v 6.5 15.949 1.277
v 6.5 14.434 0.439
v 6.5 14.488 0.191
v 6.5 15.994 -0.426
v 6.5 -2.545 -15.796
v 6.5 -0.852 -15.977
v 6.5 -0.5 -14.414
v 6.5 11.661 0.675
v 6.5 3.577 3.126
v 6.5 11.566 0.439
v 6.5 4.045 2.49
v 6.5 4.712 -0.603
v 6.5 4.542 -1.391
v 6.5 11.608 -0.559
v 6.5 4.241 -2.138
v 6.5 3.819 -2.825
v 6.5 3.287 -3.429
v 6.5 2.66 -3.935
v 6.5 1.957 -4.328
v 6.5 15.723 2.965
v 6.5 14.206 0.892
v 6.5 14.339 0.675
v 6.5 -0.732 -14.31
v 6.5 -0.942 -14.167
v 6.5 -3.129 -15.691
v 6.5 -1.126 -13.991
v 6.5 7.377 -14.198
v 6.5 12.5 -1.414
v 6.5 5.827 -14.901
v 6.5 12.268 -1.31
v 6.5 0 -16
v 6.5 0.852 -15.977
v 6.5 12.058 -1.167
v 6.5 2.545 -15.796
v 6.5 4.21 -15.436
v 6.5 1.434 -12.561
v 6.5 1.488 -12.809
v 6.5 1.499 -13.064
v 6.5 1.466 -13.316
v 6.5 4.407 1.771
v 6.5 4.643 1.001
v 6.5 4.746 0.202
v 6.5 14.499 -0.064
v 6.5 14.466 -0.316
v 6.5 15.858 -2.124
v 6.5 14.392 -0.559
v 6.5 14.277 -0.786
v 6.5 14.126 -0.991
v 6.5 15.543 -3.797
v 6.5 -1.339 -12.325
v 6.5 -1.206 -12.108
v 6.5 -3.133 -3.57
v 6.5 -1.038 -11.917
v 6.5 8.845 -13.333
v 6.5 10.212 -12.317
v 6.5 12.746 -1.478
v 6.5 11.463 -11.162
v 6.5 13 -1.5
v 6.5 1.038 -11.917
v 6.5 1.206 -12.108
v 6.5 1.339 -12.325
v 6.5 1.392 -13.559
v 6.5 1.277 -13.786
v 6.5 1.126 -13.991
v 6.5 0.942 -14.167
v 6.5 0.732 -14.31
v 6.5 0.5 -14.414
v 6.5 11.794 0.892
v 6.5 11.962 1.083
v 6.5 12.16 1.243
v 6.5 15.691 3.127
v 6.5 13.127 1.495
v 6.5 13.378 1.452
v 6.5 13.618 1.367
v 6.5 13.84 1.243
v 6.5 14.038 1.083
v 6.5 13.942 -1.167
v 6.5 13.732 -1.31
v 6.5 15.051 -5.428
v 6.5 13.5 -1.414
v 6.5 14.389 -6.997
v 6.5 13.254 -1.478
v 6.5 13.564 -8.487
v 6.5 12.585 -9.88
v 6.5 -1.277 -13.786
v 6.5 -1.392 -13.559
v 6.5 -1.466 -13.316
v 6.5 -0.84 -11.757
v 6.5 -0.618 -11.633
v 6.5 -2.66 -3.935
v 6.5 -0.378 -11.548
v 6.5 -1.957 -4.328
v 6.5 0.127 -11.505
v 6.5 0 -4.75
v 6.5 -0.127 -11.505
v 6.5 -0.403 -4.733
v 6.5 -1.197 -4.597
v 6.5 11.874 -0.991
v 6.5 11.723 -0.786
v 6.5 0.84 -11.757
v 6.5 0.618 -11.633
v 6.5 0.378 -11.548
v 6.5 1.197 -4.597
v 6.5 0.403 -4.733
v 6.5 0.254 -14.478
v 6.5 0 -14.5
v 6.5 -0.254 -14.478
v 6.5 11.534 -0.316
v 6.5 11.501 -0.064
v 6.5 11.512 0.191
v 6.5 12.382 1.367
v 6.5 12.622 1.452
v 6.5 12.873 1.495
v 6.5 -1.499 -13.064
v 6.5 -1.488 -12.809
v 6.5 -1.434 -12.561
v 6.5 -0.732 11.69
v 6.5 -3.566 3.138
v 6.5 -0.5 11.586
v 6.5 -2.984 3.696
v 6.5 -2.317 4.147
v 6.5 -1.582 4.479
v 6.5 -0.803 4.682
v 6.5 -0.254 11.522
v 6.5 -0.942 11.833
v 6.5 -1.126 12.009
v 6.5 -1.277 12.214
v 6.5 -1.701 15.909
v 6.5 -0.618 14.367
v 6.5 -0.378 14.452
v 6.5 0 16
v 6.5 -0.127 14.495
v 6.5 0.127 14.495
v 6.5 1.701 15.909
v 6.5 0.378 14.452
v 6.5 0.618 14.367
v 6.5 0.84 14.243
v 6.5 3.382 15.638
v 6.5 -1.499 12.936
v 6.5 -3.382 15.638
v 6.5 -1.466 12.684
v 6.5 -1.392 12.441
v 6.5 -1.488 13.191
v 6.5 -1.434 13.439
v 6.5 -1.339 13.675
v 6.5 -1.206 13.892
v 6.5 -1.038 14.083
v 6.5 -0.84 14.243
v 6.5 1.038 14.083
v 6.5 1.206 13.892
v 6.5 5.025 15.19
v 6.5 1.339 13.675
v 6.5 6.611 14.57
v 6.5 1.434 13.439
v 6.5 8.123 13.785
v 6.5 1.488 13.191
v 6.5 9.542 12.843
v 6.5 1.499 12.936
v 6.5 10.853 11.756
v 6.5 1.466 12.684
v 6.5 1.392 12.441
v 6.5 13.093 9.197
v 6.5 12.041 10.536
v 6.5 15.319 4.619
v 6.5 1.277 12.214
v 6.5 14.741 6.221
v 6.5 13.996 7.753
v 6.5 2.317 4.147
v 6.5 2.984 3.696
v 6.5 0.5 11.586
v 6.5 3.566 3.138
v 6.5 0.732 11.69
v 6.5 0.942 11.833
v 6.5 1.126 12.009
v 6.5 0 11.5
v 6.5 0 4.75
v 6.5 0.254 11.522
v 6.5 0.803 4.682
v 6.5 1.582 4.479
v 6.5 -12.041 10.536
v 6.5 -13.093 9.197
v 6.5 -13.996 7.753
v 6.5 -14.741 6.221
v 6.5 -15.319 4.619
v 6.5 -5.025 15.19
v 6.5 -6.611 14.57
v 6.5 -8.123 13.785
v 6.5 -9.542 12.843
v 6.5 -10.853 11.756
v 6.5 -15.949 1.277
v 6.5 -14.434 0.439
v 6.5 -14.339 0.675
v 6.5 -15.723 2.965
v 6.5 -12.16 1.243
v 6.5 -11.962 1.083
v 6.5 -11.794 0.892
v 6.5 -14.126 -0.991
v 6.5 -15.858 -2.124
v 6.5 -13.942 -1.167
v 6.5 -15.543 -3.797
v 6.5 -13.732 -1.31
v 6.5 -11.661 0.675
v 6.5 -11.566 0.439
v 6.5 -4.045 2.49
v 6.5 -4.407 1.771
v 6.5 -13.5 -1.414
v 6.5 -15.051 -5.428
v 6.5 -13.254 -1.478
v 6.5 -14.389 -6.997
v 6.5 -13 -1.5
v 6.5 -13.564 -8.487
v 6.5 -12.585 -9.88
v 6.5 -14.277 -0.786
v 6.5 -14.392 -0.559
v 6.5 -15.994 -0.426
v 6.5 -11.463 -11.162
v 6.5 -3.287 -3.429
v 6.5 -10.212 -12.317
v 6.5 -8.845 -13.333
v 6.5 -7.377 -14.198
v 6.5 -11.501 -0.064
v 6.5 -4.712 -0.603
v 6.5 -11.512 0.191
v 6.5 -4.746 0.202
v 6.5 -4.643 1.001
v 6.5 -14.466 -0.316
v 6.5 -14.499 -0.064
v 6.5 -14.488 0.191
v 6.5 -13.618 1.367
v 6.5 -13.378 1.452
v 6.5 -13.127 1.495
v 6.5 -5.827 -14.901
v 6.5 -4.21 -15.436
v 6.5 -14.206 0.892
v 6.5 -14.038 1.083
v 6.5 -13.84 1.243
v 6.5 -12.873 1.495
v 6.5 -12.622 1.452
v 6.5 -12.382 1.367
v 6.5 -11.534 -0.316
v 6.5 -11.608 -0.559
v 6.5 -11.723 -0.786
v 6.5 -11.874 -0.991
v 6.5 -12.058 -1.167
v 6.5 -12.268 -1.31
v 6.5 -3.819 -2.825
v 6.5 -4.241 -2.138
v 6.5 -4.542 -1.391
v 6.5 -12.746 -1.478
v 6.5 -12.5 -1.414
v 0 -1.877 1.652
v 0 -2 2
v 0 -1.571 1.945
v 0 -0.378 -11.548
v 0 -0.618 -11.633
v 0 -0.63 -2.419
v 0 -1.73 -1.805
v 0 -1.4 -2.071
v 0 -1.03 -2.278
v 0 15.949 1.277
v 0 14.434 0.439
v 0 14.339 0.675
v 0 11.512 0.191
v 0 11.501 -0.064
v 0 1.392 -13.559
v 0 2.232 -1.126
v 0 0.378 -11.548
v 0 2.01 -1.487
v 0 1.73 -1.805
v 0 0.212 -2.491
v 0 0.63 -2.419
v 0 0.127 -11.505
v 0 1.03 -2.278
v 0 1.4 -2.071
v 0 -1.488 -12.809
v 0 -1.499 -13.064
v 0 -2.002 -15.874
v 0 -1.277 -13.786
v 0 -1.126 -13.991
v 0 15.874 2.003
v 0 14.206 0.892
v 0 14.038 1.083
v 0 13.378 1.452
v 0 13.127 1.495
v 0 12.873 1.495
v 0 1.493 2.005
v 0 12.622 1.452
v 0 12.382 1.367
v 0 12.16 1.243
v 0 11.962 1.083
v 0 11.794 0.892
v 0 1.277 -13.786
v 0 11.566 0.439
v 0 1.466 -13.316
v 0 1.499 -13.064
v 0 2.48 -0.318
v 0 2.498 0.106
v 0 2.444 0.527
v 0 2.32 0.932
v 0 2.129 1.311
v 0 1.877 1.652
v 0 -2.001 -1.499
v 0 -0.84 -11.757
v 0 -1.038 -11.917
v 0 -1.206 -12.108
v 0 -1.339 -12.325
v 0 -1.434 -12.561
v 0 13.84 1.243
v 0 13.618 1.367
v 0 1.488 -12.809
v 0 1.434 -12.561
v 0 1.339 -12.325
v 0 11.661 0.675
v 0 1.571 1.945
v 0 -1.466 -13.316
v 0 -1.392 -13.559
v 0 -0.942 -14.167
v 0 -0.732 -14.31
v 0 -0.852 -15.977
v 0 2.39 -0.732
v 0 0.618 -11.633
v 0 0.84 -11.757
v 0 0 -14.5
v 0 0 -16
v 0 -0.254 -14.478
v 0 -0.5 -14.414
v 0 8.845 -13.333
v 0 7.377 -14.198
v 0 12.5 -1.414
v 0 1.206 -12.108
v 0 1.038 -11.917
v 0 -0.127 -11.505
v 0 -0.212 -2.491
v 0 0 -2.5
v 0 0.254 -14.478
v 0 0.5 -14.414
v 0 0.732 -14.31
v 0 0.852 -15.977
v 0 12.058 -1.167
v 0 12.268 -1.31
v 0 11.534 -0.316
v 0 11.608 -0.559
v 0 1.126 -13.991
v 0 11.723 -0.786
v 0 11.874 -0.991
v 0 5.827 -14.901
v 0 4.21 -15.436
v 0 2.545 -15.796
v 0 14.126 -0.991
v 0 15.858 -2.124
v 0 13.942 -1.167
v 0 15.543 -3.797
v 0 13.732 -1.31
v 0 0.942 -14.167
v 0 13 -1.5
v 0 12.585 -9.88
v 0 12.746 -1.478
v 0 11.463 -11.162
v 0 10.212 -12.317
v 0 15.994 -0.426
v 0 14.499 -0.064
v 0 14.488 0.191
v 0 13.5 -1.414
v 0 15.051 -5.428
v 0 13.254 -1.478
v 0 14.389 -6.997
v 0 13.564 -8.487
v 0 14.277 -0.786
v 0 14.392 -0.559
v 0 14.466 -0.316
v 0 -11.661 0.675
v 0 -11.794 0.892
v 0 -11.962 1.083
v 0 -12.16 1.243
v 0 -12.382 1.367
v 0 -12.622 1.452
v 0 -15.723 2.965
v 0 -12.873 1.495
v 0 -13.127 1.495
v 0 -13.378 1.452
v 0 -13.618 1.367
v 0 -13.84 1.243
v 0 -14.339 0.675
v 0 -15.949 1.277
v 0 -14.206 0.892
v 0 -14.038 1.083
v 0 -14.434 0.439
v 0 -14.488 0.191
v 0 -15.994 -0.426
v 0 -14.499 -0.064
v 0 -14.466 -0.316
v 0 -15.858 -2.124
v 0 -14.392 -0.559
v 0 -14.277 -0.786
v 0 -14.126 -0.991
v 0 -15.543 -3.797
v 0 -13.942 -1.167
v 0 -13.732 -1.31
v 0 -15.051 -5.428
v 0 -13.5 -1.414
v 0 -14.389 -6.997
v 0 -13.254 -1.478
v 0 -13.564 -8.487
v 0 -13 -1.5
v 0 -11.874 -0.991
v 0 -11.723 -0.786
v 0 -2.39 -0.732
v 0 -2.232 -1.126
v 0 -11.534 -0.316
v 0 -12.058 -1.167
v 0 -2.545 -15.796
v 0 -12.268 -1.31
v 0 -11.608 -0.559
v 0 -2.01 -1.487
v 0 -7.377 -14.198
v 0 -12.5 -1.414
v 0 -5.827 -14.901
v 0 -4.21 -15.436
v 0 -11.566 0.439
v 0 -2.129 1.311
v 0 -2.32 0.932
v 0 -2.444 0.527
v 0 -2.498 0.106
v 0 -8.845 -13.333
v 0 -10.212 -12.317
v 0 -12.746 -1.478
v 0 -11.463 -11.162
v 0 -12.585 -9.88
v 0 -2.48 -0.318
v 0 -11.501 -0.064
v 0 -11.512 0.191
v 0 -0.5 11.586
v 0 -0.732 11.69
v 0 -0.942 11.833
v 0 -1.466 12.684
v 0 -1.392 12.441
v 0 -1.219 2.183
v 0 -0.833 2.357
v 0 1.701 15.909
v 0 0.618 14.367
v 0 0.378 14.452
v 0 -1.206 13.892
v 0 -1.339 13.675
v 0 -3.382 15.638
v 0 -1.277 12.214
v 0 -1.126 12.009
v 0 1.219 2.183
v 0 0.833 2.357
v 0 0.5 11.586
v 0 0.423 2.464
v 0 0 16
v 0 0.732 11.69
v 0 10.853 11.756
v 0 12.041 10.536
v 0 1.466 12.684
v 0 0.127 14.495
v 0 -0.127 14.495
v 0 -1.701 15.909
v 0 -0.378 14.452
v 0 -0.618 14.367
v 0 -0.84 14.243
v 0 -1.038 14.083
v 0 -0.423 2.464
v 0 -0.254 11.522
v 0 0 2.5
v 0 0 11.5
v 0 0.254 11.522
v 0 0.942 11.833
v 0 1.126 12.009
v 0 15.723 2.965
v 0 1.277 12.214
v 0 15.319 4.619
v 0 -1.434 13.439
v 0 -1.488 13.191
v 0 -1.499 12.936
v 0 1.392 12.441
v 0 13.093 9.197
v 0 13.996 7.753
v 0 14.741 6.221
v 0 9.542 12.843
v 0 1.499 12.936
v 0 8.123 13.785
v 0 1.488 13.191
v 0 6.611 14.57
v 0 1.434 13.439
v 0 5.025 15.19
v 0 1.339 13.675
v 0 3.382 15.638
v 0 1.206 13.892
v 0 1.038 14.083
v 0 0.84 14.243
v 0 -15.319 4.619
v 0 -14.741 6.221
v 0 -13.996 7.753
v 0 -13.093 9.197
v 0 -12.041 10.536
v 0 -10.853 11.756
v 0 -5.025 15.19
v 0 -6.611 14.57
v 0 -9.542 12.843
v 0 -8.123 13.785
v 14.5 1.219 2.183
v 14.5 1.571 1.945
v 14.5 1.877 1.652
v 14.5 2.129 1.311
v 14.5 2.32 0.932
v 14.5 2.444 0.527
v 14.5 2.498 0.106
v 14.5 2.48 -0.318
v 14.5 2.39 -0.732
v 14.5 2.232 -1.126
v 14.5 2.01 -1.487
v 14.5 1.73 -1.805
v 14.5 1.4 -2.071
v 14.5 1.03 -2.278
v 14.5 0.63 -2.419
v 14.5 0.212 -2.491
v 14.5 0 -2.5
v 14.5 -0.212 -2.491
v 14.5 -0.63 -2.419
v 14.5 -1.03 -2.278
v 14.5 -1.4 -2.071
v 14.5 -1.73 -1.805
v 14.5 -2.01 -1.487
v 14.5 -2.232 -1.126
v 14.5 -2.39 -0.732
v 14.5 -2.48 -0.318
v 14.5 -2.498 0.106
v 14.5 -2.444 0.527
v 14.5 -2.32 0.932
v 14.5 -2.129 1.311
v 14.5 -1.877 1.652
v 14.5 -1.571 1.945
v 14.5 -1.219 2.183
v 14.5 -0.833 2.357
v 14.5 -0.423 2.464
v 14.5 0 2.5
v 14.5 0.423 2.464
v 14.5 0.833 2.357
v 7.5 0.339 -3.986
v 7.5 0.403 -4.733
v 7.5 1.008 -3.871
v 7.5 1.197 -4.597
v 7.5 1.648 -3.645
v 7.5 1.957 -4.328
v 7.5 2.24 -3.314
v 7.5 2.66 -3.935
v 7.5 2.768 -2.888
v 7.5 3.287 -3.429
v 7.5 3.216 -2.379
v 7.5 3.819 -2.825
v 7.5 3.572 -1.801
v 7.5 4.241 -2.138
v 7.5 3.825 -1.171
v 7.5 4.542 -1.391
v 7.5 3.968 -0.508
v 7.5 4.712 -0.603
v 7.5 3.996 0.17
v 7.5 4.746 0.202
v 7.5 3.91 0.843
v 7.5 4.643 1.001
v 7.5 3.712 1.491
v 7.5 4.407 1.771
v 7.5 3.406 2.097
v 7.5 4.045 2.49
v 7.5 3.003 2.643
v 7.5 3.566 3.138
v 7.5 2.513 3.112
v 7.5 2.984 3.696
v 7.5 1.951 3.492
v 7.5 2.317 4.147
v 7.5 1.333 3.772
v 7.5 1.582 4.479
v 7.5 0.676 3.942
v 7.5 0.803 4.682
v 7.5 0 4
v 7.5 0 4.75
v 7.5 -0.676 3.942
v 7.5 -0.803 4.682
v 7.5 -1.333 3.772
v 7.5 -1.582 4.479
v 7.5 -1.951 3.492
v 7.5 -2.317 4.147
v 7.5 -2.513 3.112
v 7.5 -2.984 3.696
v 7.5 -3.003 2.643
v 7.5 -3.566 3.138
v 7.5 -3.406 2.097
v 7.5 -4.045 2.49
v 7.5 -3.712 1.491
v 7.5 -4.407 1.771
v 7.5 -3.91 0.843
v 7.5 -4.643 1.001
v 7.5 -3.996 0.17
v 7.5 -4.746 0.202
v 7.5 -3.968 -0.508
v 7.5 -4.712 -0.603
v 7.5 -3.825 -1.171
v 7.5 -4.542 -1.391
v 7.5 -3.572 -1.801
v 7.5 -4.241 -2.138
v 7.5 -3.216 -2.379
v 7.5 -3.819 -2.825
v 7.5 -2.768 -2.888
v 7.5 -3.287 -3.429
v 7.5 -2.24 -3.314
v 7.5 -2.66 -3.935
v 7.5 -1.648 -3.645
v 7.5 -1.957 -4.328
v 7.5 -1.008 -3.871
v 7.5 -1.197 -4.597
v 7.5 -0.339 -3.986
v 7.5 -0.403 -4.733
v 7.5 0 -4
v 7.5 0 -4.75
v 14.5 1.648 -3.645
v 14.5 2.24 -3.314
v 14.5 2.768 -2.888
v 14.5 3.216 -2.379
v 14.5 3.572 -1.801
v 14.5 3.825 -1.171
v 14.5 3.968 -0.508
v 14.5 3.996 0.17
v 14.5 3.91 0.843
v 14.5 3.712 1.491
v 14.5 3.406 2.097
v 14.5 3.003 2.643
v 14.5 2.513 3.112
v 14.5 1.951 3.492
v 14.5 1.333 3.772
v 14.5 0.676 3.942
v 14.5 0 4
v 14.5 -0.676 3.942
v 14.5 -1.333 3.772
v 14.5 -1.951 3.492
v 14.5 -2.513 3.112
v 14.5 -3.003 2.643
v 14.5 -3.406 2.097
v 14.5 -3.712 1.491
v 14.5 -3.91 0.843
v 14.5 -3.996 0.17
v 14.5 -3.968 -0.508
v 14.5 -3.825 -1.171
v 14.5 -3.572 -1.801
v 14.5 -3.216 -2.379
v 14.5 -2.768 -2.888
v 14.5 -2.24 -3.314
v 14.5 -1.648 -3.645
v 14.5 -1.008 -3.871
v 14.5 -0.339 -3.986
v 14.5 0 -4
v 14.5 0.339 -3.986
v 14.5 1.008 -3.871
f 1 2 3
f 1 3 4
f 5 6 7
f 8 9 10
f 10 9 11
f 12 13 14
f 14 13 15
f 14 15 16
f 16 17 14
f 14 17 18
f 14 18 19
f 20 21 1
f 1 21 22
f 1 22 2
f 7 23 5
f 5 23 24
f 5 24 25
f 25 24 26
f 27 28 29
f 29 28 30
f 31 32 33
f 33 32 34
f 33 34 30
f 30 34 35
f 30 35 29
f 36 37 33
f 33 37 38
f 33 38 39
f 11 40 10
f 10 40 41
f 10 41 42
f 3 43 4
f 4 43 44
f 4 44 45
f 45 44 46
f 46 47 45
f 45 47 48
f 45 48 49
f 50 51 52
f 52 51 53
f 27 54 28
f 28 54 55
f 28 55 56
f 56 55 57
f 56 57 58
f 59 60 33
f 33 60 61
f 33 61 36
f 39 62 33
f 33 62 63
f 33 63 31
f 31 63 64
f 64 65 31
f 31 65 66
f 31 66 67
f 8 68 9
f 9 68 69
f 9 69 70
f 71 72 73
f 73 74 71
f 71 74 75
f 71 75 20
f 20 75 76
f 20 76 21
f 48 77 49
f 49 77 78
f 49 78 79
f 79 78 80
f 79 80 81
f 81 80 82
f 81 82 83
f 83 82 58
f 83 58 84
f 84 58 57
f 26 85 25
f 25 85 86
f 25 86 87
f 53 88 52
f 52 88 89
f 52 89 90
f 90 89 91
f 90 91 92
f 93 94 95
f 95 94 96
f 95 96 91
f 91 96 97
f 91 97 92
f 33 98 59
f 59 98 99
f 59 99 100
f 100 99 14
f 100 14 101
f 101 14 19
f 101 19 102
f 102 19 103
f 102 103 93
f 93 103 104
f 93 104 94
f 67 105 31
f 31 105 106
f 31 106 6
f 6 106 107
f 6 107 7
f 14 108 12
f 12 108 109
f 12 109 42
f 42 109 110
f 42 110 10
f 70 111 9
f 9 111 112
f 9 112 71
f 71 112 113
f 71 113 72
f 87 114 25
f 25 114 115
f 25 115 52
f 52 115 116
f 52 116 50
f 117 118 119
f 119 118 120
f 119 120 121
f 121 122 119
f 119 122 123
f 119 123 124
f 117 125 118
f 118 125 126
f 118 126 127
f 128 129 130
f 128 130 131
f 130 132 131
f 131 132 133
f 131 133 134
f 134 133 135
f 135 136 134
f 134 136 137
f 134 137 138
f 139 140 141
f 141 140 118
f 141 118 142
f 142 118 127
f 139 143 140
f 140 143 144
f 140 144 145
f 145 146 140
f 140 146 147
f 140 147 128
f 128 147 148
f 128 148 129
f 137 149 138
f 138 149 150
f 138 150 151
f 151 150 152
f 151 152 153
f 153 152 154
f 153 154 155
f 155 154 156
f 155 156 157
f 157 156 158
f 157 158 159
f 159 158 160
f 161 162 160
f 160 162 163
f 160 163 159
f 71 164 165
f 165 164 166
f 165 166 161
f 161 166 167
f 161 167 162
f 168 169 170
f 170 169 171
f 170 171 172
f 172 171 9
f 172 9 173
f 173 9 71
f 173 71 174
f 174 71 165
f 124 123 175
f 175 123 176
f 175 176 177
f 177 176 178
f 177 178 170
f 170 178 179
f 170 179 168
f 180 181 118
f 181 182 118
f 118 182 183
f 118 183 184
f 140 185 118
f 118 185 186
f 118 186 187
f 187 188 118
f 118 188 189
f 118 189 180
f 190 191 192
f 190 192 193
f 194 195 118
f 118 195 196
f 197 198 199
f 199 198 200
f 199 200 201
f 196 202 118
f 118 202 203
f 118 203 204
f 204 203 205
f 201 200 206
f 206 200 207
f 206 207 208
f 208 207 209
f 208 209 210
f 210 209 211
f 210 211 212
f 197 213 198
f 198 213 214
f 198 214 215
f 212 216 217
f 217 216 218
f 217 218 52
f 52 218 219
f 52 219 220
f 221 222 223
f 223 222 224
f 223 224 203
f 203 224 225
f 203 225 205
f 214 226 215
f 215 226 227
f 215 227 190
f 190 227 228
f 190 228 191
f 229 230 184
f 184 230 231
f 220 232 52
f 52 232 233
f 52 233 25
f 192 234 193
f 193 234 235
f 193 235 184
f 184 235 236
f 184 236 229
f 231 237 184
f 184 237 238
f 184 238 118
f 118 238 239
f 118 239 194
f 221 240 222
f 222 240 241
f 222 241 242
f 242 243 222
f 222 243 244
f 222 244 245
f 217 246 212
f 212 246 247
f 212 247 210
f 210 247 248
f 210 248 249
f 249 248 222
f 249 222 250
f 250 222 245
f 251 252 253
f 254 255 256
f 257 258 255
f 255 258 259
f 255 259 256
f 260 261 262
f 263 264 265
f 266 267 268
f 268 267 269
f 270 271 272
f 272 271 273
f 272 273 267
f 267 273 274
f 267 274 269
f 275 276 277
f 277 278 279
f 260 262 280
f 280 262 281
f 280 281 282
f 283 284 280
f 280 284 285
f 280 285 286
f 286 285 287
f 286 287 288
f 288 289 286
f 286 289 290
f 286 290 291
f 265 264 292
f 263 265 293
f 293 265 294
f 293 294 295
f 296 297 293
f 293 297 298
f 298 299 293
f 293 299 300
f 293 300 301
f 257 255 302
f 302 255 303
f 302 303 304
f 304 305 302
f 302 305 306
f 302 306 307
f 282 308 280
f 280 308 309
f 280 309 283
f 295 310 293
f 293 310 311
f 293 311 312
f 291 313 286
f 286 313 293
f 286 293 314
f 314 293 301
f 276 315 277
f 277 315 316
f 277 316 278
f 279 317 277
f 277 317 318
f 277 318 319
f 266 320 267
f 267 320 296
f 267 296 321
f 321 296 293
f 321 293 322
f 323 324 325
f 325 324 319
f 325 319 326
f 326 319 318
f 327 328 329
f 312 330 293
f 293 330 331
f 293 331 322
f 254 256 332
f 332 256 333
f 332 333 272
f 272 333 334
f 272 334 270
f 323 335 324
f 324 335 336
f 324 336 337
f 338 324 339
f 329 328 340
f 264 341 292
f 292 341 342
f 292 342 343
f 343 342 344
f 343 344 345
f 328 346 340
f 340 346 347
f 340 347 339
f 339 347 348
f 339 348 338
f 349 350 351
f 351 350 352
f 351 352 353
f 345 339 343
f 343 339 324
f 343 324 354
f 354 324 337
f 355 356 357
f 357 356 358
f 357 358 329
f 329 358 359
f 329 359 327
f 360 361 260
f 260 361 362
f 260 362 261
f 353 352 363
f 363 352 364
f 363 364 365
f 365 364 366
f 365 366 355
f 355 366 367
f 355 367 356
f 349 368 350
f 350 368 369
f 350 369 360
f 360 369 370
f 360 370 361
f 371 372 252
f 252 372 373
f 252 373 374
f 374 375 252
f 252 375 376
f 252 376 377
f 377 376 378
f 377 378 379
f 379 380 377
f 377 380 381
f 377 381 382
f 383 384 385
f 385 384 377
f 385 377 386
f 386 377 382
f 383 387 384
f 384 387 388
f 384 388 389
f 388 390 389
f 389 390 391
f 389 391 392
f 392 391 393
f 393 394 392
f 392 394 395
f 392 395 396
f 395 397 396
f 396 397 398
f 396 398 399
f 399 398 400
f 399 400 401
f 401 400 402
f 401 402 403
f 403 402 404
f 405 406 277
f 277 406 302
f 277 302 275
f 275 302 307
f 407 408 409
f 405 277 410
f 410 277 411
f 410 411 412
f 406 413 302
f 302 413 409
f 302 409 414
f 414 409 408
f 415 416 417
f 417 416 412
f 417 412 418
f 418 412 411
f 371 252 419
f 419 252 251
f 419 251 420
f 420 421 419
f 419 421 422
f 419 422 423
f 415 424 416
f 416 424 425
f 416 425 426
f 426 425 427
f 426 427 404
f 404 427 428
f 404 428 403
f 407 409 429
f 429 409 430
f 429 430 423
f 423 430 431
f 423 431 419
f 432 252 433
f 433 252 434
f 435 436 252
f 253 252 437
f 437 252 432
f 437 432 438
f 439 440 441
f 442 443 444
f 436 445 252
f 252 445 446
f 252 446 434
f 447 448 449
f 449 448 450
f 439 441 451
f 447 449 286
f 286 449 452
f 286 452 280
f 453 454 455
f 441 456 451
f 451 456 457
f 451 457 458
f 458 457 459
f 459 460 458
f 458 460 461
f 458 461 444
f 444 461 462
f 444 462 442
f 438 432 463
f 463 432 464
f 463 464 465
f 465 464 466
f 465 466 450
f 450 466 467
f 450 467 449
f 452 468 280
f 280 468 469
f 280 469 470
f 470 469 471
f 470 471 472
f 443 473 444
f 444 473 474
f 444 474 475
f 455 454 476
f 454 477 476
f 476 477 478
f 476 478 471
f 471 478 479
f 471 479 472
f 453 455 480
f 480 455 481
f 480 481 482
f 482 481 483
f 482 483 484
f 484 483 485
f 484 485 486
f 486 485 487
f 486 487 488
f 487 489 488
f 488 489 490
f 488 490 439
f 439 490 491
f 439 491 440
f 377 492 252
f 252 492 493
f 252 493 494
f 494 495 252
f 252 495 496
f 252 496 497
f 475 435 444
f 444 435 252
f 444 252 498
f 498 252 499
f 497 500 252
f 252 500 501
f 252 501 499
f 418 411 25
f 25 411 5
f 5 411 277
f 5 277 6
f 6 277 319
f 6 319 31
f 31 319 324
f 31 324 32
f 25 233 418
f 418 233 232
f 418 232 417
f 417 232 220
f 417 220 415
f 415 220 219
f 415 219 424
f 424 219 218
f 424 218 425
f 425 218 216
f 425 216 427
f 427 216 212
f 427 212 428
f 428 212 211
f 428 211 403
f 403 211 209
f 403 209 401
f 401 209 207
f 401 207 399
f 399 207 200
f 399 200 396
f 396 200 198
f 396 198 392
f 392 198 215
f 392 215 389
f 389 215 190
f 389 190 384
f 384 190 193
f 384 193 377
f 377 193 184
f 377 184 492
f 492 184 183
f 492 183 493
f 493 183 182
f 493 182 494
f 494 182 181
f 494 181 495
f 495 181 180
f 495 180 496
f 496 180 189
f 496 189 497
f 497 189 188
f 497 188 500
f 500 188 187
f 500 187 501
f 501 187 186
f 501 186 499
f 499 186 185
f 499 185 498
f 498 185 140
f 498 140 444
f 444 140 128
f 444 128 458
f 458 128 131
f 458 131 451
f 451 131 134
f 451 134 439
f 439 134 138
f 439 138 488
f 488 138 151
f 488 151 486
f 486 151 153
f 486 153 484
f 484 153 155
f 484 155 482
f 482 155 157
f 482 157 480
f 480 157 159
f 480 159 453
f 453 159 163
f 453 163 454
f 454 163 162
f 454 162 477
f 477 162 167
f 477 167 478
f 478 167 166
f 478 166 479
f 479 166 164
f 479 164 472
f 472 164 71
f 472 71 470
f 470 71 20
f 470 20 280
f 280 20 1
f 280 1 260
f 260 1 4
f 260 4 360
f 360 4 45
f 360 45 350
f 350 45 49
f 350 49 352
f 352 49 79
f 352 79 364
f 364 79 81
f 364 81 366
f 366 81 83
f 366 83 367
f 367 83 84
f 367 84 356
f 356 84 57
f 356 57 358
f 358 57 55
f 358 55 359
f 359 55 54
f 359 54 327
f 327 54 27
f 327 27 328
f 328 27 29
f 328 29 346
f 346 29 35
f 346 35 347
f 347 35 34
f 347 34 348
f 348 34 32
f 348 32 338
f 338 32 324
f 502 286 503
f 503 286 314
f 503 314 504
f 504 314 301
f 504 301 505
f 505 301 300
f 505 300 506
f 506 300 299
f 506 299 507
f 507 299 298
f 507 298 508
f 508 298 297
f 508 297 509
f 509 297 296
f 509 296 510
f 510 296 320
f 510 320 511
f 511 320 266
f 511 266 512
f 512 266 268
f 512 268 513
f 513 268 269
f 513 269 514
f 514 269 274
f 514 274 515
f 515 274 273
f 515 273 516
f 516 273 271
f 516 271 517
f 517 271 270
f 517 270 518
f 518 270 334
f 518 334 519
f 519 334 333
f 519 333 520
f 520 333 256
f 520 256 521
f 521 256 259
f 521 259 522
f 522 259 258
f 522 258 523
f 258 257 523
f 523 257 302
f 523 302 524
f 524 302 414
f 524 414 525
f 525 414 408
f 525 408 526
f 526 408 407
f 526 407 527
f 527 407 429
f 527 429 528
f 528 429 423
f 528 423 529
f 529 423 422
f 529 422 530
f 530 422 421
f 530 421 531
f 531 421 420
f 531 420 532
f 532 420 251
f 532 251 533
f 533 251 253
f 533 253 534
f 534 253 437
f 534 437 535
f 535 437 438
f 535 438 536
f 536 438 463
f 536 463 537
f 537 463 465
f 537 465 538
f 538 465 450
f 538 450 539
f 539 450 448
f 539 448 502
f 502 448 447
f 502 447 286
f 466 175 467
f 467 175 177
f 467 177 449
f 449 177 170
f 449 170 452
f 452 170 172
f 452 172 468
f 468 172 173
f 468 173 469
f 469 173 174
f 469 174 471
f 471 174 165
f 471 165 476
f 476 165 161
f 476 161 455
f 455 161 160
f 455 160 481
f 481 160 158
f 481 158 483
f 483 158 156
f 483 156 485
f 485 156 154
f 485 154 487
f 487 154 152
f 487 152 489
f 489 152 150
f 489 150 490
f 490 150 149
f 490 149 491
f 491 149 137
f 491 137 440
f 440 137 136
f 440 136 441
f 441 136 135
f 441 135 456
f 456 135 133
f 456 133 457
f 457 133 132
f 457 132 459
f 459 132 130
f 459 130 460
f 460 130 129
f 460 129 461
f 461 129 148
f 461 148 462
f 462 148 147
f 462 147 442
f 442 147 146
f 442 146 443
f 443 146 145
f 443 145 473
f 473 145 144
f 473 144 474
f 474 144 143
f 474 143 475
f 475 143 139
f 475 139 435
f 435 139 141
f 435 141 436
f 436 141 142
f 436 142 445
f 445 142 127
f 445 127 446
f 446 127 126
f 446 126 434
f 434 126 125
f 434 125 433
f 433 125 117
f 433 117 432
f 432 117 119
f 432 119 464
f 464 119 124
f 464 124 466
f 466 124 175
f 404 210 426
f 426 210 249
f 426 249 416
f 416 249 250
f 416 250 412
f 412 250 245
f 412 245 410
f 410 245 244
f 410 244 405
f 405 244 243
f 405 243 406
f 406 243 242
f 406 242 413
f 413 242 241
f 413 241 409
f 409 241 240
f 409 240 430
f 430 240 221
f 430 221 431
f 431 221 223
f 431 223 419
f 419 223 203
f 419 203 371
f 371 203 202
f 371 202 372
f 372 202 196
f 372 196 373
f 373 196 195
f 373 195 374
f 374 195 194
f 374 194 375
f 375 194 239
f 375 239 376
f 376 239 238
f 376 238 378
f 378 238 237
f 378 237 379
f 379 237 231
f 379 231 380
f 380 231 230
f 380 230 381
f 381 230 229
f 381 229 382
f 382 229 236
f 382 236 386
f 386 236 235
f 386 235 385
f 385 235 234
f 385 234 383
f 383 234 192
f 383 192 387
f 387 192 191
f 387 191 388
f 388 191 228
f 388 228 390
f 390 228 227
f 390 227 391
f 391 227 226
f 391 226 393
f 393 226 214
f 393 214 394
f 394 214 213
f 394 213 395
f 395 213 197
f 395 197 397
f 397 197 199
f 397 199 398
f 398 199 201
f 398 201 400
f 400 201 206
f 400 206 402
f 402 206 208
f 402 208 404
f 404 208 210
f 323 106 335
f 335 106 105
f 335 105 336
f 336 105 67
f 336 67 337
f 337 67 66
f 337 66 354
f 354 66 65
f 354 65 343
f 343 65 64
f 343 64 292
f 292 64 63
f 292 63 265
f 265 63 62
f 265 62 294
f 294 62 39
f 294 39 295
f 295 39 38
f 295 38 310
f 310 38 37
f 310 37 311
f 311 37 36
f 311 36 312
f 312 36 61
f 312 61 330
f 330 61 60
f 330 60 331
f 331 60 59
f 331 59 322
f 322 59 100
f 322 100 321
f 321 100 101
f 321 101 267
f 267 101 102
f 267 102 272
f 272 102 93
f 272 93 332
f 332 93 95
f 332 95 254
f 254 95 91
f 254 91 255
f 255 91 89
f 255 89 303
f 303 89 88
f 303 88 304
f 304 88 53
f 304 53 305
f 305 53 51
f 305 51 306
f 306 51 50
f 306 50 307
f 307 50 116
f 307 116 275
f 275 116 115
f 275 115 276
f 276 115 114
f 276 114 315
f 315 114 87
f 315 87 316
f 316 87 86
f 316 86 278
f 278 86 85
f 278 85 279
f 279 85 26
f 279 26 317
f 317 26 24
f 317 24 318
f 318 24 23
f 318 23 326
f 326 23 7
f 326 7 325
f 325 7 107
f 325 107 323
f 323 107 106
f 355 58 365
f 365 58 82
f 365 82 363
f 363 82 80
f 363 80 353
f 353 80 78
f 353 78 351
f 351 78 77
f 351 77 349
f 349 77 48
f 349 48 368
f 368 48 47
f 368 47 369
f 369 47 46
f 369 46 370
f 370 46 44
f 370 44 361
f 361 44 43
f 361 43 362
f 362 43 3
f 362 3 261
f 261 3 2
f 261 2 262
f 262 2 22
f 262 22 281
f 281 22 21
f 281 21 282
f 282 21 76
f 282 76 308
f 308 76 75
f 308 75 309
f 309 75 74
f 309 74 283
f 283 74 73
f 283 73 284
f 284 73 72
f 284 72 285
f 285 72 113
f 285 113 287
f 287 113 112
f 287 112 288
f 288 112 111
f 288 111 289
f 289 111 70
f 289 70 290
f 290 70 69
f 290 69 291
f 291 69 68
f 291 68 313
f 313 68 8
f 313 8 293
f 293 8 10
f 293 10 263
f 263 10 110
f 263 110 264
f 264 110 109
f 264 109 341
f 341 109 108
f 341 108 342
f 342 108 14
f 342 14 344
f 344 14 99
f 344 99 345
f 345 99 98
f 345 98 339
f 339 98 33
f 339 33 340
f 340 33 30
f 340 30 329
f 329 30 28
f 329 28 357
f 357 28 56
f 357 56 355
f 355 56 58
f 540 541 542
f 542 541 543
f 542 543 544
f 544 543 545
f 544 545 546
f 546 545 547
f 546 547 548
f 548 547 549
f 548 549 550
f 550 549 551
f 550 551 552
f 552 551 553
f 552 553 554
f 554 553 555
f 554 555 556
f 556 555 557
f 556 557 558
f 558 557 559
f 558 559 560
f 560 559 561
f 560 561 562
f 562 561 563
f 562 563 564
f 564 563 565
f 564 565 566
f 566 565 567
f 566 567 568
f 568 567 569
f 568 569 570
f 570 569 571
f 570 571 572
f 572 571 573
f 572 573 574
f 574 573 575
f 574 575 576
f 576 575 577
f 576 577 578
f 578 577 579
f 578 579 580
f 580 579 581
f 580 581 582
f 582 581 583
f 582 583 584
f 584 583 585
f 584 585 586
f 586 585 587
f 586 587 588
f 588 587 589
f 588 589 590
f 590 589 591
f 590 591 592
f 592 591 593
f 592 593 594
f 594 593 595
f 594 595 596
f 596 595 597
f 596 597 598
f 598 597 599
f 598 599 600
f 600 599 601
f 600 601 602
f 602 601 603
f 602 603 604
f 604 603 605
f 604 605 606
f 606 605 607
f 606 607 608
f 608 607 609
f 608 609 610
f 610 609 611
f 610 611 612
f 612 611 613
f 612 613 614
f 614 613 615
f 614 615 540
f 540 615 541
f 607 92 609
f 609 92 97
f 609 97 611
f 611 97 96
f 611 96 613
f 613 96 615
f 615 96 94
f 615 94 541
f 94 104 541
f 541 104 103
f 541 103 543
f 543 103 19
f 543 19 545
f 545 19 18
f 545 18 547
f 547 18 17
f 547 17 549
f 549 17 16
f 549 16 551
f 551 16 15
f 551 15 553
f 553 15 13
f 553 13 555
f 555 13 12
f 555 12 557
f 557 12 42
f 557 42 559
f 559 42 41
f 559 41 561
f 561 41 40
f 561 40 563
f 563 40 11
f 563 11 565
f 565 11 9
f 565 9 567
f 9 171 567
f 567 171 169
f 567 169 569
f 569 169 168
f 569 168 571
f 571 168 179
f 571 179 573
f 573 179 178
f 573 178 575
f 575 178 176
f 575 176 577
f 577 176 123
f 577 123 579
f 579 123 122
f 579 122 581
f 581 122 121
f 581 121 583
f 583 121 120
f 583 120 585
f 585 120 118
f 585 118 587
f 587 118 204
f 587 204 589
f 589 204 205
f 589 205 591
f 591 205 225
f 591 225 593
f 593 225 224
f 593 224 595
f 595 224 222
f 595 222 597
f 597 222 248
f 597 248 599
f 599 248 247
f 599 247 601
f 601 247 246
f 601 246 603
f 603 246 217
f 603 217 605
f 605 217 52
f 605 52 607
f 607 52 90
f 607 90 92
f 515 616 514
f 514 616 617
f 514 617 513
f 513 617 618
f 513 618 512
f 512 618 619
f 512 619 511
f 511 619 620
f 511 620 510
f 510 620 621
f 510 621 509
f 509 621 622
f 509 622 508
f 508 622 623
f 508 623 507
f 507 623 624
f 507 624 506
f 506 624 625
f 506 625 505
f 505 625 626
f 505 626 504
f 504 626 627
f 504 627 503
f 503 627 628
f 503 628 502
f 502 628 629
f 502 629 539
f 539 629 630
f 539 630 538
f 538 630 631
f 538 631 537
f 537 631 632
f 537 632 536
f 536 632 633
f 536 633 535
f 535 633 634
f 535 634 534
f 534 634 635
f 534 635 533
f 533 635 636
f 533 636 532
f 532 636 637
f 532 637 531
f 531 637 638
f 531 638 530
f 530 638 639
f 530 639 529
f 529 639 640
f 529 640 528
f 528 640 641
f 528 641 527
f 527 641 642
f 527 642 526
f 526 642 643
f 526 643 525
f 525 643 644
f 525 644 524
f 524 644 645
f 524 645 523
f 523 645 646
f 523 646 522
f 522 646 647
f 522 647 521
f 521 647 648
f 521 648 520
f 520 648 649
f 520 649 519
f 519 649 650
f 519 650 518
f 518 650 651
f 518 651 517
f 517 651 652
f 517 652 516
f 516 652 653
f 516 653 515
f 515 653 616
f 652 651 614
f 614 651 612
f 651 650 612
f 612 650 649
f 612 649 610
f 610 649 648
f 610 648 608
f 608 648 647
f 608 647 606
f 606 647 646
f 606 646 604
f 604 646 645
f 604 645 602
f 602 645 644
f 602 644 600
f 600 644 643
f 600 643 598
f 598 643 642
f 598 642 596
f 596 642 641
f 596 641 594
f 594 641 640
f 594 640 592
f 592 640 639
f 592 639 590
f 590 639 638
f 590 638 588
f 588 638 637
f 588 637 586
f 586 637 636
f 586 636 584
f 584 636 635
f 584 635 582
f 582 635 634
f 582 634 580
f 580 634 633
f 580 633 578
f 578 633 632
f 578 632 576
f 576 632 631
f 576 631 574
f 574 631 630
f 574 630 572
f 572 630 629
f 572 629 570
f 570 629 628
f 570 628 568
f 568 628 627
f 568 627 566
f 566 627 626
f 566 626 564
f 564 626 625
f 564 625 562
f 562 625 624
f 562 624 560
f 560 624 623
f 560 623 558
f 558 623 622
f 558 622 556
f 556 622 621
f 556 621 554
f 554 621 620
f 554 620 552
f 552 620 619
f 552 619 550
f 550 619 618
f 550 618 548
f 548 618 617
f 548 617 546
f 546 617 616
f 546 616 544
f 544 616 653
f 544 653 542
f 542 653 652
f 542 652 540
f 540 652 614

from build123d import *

# Parameters (mm, degrees)
SKETCH1_R           = 16
SKETCH1_R_2         = 2.5
BOSS_EXTRUDE1_DEPTH = 6.5
SKETCH2_R           = 1.5
CUT_EXTRUDE1_DEPTH  = 24.542514734
SKETCH4_R           = 4.75
SKETCH4_R_2         = 2.5
BOSS_EXTRUDE2_DEPTH = 1
SKETCH5_R           = 4
SKETCH5_R_2         = 2.5
BOSS_EXTRUDE3_DEPTH = 7


with BuildPart() as part:
    # Sketch1 → Boss-Extrude1 (new body)
    with BuildSketch(Plane(origin=(0, 0, 0), x_dir=(0, 0, -1), z_dir=(1, 0, 0))):
        with Locations(Location((0, 0, 0), (0, 0, 180))):
            Circle(SKETCH1_R)
        with Locations(Location((0, 0, 0), (0, 0, 180))):
            Circle(SKETCH1_R_2, mode=Mode.SUBTRACT)
    extrude(amount=BOSS_EXTRUDE1_DEPTH)

    # Sketch2 → Cut-Extrude1 (cut, through all)
    with BuildSketch(Plane(origin=(6.5, 0, 0), x_dir=(0, 0, -1), z_dir=(1, 0, 0))):
        with Locations((0, 13)):
            Circle(SKETCH2_R)
        with Locations((13, 0)):
            Circle(SKETCH2_R)
        with Locations((0, -13)):
            Circle(SKETCH2_R)
        with Locations((-13, 0)):
            Circle(SKETCH2_R)
    extrude(amount=-CUT_EXTRUDE1_DEPTH, mode=Mode.SUBTRACT)

    # Sketch4 → Boss-Extrude2 (add)
    with BuildSketch(Plane(origin=(6.5, 0, 0), x_dir=(0, 0, -1), z_dir=(1, 0, 0))):
        Circle(SKETCH4_R)
        with Locations(Location((0, 0, 0), (0, 0, 180))):
            Circle(SKETCH4_R_2, mode=Mode.SUBTRACT)
    extrude(amount=BOSS_EXTRUDE2_DEPTH)

    # Sketch5 → Boss-Extrude3 (add)
    with BuildSketch(Plane(origin=(7.5, 0, 0), x_dir=(0, 0, -1), z_dir=(1, 0, 0))):
        Circle(SKETCH5_R)
        with Locations(Location((0, 0, 0), (0, 0, 180))):
            Circle(SKETCH5_R_2, mode=Mode.SUBTRACT)
    extrude(amount=BOSS_EXTRUDE3_DEPTH)


solid = part.part
